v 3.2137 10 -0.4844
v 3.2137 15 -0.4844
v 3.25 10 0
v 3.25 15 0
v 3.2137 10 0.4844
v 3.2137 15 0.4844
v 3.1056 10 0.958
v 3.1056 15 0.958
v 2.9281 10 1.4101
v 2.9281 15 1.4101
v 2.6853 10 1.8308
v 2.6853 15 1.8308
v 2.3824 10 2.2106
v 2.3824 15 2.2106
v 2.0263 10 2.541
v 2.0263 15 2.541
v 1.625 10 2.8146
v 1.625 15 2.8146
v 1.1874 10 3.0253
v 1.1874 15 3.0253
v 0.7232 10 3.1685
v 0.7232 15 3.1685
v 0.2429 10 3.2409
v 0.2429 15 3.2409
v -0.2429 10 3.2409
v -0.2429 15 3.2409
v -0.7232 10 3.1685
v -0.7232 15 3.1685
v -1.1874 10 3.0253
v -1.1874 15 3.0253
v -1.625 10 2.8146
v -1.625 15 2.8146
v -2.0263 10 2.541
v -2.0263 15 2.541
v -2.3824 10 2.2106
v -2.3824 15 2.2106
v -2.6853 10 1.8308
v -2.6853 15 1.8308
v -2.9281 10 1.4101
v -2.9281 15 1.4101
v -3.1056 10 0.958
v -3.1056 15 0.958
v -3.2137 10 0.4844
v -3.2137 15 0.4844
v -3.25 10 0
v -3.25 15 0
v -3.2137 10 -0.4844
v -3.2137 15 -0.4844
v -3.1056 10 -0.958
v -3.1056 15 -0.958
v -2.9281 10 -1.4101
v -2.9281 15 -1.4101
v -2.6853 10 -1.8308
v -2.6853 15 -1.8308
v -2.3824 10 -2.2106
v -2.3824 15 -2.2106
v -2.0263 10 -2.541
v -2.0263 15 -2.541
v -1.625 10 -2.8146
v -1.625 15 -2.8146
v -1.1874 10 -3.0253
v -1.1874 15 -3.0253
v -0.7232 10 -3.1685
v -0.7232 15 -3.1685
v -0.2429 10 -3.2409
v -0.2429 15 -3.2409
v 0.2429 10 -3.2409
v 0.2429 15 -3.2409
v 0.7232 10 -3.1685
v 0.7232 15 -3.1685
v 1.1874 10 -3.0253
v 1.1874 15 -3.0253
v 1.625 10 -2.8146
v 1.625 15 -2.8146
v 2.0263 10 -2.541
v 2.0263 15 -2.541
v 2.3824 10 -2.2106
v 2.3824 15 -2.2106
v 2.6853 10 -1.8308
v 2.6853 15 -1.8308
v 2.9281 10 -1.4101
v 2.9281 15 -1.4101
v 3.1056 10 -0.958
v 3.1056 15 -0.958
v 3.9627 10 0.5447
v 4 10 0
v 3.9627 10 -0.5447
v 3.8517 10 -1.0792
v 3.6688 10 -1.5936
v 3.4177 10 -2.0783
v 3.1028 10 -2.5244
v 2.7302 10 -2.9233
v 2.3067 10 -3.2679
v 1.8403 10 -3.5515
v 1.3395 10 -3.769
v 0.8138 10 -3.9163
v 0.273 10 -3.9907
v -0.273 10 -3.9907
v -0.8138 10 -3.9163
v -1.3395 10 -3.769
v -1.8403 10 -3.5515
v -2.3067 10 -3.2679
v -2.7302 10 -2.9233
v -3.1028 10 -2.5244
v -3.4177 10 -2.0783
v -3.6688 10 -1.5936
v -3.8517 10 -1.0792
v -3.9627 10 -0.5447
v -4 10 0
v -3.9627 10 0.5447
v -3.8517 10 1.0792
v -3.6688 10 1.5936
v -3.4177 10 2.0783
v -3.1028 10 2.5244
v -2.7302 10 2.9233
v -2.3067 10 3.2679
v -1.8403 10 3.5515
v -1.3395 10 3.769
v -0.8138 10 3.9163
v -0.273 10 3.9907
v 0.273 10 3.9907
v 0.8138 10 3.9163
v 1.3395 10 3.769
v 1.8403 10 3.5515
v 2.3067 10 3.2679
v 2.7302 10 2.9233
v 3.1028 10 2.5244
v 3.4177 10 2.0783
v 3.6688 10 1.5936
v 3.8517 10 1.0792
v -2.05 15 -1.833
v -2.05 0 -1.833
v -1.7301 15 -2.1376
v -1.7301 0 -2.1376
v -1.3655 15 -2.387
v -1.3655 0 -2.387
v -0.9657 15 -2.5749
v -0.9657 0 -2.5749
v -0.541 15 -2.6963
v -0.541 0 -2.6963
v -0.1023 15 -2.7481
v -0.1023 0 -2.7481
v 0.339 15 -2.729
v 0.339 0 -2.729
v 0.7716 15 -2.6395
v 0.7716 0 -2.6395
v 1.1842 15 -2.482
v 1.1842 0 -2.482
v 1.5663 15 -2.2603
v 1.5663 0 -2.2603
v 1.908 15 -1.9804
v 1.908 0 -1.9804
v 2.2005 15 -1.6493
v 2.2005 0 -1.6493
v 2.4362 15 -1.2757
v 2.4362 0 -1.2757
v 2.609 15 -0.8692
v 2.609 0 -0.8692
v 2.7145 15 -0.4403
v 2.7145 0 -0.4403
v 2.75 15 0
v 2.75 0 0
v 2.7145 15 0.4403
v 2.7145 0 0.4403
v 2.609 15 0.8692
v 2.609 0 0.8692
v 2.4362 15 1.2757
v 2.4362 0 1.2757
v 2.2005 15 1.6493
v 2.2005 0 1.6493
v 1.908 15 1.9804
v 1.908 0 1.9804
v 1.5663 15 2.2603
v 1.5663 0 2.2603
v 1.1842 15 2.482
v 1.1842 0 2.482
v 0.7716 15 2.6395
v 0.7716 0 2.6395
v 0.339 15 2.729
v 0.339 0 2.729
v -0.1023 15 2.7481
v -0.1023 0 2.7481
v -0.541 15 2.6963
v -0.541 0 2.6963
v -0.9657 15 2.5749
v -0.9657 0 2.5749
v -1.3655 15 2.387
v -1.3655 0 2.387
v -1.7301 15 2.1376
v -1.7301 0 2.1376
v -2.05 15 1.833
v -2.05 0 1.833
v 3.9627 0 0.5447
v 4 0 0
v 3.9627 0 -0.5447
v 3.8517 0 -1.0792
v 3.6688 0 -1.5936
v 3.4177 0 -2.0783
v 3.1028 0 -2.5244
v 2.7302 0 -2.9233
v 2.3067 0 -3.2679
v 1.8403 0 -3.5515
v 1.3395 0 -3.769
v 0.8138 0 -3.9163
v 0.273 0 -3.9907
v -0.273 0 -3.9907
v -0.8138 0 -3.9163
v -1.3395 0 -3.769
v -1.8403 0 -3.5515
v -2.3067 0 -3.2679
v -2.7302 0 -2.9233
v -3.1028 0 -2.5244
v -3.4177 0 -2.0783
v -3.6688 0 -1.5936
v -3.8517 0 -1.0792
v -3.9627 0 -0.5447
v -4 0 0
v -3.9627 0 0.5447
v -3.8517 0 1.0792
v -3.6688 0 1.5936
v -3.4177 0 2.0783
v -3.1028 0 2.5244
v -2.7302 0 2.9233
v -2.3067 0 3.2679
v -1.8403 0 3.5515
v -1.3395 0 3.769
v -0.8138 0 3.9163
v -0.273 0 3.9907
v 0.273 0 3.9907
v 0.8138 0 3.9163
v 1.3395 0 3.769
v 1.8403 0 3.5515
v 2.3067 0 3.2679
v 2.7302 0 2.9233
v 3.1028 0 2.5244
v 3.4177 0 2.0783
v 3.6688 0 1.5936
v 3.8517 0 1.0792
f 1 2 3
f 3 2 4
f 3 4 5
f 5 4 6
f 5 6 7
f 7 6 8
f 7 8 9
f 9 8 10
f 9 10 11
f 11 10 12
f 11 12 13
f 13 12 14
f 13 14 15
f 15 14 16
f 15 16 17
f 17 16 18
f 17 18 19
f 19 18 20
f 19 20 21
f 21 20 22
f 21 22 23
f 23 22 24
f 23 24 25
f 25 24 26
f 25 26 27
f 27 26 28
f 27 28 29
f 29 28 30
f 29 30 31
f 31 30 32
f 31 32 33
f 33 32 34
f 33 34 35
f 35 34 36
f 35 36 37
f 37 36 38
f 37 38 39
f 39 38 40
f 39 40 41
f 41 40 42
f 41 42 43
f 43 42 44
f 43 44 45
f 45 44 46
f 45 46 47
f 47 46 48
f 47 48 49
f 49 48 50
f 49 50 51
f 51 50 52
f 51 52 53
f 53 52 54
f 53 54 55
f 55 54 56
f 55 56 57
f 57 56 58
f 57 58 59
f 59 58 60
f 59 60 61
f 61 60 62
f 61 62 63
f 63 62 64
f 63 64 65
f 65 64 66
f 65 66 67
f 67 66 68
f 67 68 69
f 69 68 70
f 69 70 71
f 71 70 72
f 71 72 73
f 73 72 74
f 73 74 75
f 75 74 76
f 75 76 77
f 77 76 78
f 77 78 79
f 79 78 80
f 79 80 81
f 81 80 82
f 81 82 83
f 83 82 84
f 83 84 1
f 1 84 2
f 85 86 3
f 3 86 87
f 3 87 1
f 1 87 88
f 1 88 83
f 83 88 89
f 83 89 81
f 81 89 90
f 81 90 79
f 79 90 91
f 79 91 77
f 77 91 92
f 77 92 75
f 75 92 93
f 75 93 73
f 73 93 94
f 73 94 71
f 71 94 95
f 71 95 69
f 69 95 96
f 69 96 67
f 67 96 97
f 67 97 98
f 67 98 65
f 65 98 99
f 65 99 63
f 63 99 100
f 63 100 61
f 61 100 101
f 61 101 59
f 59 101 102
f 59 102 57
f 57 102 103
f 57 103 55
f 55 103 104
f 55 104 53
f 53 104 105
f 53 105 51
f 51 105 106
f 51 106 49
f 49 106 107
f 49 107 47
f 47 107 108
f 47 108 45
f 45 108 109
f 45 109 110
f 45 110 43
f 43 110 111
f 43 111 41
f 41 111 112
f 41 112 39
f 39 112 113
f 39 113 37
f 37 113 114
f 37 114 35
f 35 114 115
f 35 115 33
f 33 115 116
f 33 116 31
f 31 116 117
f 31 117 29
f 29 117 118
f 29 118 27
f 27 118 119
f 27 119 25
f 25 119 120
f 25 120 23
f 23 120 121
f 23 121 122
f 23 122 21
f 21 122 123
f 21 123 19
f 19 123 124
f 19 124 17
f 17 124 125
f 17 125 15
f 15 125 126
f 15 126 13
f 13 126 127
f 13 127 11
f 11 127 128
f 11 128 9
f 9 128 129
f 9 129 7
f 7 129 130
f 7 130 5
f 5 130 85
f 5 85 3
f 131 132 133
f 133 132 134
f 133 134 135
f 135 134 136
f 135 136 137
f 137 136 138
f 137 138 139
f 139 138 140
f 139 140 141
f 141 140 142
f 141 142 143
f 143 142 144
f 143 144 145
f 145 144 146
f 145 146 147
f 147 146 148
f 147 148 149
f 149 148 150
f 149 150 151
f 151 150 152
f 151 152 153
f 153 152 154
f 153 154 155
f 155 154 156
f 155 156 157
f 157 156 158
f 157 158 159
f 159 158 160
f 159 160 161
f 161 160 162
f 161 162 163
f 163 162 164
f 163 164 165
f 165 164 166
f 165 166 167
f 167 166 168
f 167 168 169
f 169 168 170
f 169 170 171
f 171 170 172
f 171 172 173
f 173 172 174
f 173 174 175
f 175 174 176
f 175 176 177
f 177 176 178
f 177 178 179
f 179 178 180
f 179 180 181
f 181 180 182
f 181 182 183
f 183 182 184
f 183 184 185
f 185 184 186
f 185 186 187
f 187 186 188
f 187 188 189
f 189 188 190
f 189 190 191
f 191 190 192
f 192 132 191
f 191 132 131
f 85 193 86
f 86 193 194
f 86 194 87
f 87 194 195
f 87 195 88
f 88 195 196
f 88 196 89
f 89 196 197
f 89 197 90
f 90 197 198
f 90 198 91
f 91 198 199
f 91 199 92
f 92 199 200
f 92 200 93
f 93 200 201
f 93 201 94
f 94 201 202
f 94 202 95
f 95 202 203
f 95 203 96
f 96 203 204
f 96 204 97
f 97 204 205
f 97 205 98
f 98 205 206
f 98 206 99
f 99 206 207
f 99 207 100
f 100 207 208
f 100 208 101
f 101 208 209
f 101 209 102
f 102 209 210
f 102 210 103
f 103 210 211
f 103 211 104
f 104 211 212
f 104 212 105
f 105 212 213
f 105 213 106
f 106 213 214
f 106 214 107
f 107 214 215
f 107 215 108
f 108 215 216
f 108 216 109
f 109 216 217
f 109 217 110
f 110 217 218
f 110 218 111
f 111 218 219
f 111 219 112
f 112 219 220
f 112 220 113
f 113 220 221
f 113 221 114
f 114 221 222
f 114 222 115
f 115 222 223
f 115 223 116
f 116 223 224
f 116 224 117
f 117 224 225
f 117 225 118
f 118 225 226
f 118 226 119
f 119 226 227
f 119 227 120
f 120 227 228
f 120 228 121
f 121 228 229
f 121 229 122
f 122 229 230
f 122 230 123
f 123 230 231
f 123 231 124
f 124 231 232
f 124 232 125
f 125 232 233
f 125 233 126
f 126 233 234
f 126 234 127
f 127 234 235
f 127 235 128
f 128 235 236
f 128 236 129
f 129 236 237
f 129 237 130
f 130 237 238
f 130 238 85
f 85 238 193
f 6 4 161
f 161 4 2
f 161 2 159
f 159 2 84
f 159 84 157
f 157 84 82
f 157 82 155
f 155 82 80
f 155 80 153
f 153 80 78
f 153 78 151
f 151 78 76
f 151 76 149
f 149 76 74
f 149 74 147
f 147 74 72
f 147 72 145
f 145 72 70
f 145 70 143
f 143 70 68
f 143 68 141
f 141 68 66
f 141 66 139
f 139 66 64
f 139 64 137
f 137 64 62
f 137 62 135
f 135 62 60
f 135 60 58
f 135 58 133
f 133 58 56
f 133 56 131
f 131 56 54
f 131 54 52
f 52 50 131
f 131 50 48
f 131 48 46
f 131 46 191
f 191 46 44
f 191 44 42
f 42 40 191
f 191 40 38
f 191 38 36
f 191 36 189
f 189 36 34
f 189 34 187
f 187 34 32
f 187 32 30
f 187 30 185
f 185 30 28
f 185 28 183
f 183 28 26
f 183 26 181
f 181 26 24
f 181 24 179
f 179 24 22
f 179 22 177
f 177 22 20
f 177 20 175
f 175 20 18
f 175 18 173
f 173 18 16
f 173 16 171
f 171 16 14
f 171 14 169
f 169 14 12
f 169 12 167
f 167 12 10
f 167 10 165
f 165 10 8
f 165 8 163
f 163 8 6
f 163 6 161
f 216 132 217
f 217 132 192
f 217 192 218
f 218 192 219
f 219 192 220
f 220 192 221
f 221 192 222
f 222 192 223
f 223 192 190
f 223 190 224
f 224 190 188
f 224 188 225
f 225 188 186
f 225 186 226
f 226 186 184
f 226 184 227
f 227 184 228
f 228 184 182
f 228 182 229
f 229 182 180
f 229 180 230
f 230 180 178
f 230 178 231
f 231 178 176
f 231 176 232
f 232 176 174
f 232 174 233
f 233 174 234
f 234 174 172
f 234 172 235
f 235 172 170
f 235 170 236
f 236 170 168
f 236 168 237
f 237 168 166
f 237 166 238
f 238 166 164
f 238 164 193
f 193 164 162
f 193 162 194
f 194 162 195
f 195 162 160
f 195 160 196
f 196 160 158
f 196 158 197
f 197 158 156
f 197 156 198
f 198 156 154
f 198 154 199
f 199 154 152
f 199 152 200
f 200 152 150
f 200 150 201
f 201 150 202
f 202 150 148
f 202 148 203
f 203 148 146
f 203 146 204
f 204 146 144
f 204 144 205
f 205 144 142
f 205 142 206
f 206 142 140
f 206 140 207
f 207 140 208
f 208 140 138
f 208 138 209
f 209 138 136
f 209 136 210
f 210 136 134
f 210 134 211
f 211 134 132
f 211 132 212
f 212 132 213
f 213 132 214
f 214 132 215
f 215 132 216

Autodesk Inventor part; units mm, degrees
ref_plane "YZ Plane" through (0, 0, 0) normal (1, 0, 0) x (0, 1, 0)
ref_plane "XZ Plane" through (0, 0, 0) normal (0, 1, 0) x (-1, 0, 0)
ref_plane "XY Plane" through (0, 0, 0) normal (0, 0, 1) x (1, 0, 0)
sketch "Sketch1" plane through (0, 0, 0) normal (0, 1, 0) x (-1, 0, 0)
  arc A0 (2.05, 1.833) -> (2.05, -1.833) centre (0, 0) ccw
  line L0 (-2.75, 2.2253) -> (-2.75, -2.0609)
  circle A1 centre (0, 0) radius 4
  line L1 (2.05, 1.833) -> (2.05, -1.833)
  dimension "d0" = 5.5
  dimension "d3" = 8
  dimension "d4" = 4.8
extrude "Extrusion1" add sketch "Sketch1" along normal blind 15
sketch "Sketch2" plane through (0, 15, 0) normal (0, 1, 0) x (1, 0, 0)
  circle A0 centre (0, 0) radius 3.25
  circle A1 centre (0, 0) radius 4 projected
  dimension "d7" = 6.5
extrude "Extrusion2" cut sketch "Sketch2" against normal blind 5
properties part number "5.5x4.8"
